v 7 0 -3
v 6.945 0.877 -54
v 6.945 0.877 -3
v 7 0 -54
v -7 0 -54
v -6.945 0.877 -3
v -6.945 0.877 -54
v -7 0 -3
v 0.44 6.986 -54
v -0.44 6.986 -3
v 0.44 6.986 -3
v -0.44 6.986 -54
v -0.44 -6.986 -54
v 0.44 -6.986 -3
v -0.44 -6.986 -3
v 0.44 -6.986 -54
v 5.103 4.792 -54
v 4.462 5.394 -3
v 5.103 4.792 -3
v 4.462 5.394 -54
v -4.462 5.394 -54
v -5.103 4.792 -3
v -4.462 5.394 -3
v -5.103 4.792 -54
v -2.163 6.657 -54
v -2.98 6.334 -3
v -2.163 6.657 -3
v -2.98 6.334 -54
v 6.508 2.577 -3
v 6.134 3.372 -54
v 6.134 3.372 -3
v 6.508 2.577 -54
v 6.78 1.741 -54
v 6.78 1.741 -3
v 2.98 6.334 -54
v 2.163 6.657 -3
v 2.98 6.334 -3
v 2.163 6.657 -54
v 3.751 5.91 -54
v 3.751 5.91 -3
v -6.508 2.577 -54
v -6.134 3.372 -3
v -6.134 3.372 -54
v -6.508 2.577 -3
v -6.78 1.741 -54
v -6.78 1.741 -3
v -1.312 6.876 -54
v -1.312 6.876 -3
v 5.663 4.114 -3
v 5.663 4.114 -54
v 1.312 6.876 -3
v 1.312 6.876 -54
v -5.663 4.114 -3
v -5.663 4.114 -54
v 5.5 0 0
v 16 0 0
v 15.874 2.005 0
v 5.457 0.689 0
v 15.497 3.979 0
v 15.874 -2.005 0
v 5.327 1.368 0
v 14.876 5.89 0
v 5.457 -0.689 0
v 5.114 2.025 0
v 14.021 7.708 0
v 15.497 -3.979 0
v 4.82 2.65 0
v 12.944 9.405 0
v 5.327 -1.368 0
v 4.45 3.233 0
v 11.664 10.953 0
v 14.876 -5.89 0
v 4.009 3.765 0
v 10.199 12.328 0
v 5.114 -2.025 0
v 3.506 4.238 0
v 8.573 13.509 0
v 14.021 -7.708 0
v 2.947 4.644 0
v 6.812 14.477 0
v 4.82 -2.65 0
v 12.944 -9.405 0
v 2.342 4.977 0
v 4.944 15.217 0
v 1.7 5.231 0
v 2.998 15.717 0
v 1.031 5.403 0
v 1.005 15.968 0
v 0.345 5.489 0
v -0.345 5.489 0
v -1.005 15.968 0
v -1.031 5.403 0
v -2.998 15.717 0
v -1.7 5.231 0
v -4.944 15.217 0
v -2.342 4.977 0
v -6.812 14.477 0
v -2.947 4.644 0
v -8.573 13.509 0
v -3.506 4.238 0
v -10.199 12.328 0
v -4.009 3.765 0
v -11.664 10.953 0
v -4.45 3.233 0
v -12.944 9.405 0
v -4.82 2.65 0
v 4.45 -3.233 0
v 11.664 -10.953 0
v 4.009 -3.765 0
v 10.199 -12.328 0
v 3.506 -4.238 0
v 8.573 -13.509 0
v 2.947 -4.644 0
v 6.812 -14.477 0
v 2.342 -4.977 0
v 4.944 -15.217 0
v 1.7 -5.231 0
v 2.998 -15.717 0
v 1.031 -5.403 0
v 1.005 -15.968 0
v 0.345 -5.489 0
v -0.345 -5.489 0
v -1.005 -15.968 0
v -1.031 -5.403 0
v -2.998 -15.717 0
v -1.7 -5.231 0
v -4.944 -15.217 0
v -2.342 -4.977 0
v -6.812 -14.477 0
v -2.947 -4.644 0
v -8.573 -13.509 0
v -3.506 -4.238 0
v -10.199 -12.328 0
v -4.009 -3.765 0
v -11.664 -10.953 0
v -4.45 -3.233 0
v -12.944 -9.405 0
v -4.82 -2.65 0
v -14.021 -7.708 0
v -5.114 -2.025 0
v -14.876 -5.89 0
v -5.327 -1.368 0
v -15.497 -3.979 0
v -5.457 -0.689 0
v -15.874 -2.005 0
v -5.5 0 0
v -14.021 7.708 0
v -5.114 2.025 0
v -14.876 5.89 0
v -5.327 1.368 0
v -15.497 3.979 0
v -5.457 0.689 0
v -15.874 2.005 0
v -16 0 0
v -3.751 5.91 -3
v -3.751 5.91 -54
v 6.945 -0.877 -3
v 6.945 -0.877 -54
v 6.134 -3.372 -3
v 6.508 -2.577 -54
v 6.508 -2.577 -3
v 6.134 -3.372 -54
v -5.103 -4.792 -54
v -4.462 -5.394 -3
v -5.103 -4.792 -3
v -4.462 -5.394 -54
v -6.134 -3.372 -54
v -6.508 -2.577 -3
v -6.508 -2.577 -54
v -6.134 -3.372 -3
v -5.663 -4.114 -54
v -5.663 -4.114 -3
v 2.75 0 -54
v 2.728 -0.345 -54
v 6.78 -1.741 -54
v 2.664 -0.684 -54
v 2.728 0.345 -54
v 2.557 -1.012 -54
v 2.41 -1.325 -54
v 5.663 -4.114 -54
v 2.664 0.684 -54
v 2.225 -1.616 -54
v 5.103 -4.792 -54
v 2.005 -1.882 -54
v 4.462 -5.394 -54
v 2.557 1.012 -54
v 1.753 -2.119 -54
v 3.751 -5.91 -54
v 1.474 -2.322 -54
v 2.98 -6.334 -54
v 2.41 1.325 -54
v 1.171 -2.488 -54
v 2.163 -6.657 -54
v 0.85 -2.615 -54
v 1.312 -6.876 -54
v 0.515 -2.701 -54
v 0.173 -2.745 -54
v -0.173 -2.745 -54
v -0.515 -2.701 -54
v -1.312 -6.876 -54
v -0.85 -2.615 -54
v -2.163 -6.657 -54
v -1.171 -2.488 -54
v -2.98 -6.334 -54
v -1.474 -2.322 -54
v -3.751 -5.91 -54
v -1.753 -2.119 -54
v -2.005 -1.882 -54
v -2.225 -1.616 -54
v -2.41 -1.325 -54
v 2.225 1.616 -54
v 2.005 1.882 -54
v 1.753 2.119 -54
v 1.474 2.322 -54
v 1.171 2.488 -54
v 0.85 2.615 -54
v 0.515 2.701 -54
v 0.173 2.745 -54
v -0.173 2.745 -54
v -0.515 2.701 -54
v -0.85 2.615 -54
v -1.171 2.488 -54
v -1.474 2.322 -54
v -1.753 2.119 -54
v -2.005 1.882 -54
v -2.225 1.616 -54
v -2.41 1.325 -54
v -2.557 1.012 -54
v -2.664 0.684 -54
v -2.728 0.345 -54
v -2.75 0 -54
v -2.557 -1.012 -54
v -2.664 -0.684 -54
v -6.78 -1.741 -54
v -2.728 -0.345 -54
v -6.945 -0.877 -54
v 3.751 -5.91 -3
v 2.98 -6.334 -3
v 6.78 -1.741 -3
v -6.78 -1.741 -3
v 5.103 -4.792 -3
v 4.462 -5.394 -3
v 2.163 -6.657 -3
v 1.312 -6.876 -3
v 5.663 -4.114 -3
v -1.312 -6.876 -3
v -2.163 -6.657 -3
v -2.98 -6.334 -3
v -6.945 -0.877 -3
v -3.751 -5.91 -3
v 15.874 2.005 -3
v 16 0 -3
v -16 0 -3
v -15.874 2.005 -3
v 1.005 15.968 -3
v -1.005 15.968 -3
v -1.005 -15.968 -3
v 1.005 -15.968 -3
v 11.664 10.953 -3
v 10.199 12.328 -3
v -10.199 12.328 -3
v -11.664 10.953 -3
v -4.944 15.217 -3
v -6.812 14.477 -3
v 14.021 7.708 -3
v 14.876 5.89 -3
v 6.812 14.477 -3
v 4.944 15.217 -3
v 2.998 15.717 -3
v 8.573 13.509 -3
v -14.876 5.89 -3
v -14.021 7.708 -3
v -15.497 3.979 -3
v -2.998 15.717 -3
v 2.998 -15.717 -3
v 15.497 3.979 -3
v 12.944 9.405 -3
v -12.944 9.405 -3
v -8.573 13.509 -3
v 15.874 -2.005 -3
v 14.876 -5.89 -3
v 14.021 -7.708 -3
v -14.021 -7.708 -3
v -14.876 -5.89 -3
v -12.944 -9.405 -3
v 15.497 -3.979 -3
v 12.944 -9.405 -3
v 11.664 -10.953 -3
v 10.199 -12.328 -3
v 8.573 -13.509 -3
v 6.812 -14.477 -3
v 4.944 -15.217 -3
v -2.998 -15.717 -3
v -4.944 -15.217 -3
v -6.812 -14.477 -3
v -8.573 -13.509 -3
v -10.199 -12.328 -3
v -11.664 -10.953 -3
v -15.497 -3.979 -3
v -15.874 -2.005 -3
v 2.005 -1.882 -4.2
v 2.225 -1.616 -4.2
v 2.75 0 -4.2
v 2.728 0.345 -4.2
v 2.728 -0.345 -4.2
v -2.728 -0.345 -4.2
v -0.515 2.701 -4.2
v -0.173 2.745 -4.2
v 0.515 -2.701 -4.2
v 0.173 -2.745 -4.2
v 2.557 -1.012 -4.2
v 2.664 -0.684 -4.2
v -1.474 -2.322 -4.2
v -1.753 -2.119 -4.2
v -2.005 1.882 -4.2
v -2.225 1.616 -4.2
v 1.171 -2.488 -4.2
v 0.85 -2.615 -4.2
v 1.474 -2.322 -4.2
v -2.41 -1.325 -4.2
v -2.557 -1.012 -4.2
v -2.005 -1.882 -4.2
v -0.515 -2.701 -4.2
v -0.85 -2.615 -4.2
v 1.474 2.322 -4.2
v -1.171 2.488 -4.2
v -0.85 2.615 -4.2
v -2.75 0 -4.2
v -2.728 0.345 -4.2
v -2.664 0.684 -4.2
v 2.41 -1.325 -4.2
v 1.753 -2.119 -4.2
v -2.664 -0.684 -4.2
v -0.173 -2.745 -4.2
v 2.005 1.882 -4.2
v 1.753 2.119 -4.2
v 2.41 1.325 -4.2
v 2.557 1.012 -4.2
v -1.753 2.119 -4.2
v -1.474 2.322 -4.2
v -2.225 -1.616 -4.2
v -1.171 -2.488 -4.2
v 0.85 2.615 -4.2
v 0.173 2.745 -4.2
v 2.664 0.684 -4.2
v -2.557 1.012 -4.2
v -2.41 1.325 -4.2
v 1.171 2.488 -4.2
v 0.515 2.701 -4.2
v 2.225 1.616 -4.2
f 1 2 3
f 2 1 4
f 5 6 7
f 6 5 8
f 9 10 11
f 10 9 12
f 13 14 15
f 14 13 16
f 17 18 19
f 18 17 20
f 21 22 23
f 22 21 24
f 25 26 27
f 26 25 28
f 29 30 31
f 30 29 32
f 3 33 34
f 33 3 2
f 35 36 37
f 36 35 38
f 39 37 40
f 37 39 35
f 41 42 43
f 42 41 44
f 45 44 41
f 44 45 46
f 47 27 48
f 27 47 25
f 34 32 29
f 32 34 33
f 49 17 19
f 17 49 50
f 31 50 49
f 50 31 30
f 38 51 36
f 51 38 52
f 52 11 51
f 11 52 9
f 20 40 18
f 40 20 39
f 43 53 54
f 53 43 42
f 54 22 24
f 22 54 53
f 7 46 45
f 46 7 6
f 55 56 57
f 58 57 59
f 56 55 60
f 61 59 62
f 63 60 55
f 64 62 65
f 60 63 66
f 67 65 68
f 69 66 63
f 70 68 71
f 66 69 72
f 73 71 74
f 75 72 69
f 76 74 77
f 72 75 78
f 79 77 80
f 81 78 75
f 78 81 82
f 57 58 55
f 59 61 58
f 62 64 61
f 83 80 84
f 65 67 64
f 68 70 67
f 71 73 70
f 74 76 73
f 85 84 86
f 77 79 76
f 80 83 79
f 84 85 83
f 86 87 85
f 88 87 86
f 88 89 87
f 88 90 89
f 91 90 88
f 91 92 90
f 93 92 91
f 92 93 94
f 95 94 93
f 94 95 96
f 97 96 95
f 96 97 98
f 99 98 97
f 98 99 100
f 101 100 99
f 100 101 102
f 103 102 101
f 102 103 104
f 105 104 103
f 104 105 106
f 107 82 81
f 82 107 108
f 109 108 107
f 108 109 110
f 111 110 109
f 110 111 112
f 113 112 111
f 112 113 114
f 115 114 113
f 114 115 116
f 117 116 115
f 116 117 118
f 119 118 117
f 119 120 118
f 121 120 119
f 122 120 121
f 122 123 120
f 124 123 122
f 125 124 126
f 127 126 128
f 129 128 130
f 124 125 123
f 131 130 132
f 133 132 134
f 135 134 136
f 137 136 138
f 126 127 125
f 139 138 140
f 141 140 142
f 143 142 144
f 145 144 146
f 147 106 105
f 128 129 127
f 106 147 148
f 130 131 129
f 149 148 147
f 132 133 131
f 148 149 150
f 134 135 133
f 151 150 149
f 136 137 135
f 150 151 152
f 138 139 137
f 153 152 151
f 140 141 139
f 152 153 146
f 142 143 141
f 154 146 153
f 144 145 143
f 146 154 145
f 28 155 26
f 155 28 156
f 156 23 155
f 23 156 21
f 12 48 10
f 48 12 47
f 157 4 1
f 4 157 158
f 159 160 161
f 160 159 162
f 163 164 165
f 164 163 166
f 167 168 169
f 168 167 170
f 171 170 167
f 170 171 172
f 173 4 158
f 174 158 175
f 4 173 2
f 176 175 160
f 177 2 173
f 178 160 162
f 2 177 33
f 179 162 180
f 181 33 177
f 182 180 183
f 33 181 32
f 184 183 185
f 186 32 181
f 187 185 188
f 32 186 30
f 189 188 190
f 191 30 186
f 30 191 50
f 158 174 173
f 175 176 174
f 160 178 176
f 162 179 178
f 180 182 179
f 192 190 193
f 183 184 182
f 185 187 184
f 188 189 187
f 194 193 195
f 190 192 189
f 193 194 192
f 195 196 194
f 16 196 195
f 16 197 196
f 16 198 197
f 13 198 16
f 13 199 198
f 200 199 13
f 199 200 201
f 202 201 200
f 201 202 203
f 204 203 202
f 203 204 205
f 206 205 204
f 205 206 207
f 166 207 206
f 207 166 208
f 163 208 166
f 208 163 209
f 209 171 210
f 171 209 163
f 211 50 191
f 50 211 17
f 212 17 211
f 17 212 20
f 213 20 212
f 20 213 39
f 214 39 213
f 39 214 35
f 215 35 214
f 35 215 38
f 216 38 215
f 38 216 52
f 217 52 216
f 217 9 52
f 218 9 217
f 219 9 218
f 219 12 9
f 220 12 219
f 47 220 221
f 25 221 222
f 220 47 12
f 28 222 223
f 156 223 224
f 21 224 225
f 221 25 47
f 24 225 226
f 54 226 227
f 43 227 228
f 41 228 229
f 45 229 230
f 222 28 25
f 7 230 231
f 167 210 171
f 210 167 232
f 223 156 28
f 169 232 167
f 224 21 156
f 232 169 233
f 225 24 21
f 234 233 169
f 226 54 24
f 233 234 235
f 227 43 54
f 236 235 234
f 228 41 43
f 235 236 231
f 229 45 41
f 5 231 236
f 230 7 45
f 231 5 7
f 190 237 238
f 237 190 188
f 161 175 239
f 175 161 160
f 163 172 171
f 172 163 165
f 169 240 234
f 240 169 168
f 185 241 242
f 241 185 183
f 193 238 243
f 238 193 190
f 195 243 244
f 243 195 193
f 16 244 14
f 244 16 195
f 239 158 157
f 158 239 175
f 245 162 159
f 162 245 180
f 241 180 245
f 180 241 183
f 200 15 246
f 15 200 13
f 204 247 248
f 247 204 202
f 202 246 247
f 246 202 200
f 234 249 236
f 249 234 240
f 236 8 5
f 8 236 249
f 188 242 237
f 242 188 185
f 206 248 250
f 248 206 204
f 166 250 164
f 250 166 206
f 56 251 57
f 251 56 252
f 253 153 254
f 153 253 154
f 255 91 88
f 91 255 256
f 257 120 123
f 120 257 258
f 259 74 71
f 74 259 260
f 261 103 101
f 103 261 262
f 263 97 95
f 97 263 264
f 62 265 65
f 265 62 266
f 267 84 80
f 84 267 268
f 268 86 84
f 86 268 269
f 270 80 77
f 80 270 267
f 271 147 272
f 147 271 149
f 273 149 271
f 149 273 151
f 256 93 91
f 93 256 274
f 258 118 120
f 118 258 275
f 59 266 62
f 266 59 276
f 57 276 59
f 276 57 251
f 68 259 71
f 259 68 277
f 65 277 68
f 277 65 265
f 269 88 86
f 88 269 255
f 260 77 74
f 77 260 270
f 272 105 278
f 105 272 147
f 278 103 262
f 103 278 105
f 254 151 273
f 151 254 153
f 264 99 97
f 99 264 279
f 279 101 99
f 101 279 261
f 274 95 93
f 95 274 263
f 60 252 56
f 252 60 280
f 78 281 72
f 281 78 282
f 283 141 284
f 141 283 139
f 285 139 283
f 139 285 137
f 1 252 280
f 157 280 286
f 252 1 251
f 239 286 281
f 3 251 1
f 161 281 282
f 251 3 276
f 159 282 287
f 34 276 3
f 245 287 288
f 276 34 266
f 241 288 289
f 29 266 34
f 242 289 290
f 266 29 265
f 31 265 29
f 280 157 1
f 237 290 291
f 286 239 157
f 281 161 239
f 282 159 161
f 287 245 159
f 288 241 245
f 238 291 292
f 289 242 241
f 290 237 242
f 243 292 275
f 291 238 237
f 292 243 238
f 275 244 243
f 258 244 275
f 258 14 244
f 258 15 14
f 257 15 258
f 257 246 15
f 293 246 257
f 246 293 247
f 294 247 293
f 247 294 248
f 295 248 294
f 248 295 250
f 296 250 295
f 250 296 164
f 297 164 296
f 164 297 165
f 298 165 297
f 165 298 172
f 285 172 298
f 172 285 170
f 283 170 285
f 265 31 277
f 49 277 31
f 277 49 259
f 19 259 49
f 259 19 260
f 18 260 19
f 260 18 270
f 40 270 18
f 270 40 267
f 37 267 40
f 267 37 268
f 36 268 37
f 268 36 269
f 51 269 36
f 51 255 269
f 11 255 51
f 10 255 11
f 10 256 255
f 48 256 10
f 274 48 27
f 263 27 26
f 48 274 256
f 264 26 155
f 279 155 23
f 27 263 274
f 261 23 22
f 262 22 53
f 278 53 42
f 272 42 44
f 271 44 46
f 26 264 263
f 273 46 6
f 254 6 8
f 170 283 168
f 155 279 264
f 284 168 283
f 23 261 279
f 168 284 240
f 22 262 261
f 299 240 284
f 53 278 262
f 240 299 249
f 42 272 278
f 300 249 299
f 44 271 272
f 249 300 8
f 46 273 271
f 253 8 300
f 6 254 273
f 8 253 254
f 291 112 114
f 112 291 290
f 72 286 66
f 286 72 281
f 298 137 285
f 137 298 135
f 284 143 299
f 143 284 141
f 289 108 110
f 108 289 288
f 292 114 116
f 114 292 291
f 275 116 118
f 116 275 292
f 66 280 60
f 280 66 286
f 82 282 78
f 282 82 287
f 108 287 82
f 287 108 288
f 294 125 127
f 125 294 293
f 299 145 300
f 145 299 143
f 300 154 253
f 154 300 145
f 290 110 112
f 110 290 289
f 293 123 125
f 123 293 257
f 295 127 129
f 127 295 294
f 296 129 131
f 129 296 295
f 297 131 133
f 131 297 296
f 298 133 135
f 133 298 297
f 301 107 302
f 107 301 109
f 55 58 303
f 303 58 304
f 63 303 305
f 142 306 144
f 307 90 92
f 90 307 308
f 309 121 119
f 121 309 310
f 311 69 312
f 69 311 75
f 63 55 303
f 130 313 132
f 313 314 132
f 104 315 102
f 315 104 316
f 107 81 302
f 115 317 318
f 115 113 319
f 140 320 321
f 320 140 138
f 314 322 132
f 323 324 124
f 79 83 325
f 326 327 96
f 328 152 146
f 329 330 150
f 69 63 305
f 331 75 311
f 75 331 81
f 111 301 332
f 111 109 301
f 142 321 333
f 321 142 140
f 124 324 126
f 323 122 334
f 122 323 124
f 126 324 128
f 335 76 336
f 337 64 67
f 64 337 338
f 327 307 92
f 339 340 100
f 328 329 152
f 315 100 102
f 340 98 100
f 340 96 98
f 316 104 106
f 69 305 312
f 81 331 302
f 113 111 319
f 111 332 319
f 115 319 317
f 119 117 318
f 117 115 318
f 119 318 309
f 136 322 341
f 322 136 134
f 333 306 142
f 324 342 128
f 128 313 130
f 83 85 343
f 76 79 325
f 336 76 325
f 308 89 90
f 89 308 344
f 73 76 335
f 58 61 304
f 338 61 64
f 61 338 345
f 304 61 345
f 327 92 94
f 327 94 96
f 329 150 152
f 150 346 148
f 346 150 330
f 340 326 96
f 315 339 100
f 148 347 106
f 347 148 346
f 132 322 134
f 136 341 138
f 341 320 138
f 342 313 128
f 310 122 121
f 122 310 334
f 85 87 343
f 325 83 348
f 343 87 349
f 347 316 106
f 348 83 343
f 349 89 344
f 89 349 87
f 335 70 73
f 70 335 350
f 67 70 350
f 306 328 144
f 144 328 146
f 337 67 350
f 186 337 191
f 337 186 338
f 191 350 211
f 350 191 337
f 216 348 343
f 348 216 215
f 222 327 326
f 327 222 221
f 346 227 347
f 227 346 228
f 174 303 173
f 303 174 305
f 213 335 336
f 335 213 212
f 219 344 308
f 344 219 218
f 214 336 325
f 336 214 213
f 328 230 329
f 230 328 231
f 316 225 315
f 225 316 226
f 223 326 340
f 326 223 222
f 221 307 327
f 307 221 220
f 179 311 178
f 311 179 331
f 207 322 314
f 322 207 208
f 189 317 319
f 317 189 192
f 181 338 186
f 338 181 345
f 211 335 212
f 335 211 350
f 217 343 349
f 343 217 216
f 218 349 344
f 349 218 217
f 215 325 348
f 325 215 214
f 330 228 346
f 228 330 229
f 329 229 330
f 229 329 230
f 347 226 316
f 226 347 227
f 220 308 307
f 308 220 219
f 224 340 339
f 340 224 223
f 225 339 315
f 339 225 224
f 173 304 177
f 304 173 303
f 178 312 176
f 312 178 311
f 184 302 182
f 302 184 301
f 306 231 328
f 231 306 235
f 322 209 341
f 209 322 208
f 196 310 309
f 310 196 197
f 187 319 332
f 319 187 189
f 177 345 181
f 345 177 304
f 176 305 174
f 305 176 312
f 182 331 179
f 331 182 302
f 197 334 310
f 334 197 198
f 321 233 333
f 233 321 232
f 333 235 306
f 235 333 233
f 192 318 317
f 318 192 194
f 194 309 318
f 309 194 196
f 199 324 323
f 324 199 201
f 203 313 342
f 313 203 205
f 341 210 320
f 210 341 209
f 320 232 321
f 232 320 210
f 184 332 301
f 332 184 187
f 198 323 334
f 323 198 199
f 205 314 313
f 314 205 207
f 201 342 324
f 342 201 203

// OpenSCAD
$fn = 50;


difference() {
	union() {
		translate(v = [0, 0, -54.0000000000]) {
			cylinder(h = 54, r = 7.0000000000);
		}
		translate(v = [0, 0, -3.0000000000]) {
			cylinder(h = 3, r = 16.0000000000);
		}
	}
	union() {
		translate(v = [0, 0, 0]) {
			rotate(a = [0, 0, 0]) {
				difference() {
					union() {
						#translate(v = [0, 0, -54.0000000000]) {
							cylinder(h = 54, r = 2.2500000000);
						}
						#translate(v = [0, 0, -4.2000000000]) {
							cylinder(h = 4.2000000000, r1 = 2.7500000000, r2 = 5.5000000000);
						}
						#translate(v = [0, 0, -54.0000000000]) {
							cylinder(h = 54, r = 2.7500000000);
						}
						#translate(v = [0, 0, -54.0000000000]) {
							cylinder(h = 54, r = 2.2500000000);
						}
					}
					union();
				}
			}
		}
	}
}
